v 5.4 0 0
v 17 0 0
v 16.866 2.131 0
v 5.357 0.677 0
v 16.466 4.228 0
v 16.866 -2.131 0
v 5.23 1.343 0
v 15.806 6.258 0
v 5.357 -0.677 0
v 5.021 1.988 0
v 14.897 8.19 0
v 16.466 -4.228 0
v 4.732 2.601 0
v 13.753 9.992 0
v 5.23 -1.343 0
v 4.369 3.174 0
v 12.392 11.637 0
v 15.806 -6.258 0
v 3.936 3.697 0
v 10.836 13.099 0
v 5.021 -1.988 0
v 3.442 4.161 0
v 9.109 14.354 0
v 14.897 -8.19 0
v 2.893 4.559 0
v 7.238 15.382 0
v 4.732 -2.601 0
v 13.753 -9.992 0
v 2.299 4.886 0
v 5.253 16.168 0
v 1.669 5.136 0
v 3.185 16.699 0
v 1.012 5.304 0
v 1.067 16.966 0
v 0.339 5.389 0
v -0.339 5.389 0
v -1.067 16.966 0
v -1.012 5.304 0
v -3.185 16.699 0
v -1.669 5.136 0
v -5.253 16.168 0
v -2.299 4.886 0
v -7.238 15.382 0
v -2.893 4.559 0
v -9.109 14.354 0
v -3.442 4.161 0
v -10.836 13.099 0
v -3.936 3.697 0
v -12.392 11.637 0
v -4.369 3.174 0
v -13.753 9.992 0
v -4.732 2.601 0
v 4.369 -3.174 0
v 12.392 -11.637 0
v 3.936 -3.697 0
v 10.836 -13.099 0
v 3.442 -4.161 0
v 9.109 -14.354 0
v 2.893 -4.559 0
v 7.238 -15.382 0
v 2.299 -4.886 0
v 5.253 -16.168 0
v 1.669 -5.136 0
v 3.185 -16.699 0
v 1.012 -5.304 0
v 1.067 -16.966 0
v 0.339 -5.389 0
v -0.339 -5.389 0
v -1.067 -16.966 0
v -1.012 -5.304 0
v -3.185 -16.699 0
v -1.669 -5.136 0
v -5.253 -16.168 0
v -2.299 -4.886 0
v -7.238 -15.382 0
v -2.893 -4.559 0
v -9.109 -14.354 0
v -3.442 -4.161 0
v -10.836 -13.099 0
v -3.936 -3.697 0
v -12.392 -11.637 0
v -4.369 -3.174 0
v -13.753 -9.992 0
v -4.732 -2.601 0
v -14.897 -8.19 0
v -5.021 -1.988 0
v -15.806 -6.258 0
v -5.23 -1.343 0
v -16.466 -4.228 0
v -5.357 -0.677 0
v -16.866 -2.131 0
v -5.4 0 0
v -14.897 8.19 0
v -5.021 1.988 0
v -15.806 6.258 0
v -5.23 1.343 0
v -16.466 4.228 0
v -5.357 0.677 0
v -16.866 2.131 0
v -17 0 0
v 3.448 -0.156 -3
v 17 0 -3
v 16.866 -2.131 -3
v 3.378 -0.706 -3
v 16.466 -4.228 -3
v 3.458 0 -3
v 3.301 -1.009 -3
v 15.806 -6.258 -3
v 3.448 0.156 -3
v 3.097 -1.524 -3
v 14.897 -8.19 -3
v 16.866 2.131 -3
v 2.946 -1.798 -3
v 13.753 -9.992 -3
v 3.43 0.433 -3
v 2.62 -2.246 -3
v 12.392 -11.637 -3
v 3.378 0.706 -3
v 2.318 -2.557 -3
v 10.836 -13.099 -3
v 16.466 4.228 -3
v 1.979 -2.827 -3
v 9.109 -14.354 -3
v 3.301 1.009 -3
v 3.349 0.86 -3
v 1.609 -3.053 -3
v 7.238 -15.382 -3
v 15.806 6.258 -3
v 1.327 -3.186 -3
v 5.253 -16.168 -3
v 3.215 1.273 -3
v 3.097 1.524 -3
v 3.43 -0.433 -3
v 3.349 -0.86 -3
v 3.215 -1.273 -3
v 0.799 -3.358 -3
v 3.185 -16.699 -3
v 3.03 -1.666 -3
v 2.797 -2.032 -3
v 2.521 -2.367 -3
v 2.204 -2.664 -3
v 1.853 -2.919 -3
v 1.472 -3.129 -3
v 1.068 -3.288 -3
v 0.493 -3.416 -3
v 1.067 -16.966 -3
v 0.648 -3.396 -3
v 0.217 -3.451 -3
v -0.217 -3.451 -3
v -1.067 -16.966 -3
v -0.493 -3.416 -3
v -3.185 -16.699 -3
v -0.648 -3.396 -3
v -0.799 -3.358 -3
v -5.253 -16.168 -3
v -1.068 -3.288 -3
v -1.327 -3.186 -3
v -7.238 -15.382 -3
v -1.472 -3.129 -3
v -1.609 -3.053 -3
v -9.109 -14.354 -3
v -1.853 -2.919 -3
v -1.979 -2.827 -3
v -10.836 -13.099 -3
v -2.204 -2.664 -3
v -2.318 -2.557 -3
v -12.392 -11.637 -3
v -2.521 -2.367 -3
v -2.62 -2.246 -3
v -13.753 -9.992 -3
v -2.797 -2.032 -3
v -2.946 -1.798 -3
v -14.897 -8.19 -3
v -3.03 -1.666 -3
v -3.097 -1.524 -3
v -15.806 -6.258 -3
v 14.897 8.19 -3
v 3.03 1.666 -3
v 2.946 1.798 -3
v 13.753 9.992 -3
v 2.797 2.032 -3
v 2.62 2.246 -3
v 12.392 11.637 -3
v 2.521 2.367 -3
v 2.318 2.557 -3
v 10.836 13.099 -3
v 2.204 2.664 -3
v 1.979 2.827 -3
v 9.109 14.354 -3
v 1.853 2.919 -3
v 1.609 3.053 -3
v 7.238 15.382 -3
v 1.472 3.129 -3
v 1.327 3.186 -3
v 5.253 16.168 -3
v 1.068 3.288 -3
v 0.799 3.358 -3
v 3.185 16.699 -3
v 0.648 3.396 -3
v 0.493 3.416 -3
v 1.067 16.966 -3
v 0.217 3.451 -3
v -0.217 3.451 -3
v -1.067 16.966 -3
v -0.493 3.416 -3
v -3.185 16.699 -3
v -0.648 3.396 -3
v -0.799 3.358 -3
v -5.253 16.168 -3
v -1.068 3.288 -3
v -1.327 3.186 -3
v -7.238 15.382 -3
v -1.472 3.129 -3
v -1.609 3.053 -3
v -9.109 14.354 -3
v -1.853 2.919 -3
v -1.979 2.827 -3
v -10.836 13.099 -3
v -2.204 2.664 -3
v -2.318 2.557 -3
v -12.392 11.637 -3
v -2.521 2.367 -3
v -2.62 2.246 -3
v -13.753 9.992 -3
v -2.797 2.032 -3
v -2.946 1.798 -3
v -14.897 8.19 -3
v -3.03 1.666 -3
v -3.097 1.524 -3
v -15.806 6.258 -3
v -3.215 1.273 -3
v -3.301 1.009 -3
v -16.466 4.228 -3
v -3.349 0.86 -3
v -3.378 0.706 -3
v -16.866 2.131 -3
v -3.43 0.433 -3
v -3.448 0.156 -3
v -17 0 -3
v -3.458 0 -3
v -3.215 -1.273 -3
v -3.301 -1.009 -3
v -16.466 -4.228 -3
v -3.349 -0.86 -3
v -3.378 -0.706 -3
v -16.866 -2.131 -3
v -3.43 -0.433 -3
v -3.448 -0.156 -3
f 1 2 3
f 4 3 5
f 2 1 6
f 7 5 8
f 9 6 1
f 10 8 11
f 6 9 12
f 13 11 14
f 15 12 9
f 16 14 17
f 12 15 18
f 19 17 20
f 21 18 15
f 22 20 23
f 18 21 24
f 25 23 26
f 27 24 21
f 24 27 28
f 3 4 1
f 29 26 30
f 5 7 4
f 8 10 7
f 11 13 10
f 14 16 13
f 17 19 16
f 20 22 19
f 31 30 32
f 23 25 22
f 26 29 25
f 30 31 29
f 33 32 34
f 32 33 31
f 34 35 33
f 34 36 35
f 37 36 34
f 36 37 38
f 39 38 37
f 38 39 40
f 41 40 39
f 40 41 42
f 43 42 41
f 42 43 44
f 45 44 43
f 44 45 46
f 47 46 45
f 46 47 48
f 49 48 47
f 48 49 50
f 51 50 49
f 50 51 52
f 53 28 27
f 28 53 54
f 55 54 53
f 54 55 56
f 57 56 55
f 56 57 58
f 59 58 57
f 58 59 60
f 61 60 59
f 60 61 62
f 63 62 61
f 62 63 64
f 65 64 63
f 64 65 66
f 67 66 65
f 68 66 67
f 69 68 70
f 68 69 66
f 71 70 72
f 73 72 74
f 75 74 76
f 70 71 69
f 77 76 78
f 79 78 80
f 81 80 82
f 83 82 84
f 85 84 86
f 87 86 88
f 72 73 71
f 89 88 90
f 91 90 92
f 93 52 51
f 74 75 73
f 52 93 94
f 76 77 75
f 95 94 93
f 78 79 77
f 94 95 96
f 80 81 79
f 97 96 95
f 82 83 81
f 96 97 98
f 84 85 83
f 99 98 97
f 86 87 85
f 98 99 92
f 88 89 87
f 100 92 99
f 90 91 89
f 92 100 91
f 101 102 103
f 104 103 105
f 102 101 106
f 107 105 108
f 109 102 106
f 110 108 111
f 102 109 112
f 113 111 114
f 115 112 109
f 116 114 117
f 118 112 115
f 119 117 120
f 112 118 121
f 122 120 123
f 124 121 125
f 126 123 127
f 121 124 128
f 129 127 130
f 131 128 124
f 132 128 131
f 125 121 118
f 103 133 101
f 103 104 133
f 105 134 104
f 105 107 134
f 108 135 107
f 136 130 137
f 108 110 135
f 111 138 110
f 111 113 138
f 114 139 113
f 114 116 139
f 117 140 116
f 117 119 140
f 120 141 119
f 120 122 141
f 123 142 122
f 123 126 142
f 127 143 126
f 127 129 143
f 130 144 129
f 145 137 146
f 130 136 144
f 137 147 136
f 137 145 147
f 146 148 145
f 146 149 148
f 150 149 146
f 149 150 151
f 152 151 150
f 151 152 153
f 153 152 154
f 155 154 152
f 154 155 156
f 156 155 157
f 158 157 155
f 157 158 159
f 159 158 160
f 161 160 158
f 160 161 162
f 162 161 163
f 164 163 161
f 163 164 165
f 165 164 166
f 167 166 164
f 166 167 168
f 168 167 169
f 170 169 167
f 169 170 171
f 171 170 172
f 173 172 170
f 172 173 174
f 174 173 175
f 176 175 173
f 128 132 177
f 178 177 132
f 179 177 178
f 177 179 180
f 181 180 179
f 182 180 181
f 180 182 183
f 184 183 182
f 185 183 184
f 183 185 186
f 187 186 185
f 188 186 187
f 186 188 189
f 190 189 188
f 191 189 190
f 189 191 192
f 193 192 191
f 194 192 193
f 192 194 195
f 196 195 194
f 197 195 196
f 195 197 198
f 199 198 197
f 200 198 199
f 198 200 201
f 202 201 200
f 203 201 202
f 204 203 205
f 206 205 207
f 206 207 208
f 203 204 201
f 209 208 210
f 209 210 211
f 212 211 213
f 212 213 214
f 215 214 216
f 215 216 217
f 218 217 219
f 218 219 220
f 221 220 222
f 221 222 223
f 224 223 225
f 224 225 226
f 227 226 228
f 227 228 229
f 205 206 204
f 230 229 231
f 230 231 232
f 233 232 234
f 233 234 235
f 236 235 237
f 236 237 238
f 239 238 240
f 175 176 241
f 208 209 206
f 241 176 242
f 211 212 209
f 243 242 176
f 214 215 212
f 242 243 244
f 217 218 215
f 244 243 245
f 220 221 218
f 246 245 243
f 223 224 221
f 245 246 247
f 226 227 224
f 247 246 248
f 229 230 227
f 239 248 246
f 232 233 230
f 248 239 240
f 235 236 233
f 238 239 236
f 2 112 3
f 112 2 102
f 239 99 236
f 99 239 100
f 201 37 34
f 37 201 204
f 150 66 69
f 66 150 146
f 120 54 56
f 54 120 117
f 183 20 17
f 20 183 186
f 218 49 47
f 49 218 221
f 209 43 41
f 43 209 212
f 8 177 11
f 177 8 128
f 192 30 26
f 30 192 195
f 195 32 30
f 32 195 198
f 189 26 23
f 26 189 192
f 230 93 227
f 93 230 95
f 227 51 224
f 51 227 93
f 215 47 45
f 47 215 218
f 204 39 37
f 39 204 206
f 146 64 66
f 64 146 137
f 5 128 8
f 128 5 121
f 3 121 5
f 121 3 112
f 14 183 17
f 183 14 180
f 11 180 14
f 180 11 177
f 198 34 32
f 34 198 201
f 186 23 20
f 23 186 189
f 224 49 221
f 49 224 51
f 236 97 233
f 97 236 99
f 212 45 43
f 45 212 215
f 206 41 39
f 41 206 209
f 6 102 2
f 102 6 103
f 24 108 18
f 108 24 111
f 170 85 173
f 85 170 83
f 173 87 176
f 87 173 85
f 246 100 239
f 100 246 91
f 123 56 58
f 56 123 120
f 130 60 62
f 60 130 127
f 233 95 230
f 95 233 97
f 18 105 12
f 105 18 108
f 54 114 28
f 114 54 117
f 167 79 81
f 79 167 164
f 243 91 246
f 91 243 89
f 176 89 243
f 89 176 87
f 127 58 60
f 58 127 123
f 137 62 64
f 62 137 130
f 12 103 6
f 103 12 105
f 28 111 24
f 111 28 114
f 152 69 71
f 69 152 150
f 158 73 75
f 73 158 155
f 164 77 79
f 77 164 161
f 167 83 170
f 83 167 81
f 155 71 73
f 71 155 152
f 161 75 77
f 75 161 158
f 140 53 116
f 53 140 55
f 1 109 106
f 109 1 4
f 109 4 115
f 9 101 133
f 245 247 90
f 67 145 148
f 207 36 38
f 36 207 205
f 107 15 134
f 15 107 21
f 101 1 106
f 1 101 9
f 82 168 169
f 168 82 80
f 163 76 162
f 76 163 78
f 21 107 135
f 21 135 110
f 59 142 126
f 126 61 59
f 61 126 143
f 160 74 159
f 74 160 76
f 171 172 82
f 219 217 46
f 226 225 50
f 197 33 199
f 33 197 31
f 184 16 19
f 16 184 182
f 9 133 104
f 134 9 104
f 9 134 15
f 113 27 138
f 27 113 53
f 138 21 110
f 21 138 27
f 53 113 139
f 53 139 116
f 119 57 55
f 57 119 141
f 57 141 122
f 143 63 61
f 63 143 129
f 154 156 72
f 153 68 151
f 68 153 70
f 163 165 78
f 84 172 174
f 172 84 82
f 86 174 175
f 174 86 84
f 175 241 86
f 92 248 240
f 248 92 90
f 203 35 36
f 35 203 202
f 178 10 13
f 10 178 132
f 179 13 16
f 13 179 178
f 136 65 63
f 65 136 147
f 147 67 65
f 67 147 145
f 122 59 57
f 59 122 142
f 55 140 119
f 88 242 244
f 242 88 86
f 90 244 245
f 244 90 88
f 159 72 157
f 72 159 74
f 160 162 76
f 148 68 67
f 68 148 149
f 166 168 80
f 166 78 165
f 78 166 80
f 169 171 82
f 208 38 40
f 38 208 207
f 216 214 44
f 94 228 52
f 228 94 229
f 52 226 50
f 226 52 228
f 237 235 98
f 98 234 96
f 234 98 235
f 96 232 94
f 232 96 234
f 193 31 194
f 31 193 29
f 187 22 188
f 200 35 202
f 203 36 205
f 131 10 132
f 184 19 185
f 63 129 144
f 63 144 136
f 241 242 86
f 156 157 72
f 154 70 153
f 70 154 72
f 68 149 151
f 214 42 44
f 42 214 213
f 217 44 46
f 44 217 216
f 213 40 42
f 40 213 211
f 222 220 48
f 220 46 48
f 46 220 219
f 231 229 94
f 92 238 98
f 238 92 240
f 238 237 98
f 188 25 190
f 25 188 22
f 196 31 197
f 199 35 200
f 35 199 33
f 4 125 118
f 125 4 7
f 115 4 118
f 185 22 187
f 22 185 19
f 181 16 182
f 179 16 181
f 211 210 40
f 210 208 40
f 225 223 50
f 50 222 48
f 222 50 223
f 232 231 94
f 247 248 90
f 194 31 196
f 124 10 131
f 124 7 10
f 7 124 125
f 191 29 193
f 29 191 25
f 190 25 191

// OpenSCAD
$fn = 50;


difference() {
	union() {
		translate(v = [0, 0, -3.0000000000]) {
			cylinder(h = 3, r = 7.0000000000);
		}
		translate(v = [0, 0, -3.0000000000]) {
			cylinder(h = 3, r = 17.0000000000);
		}
	}
	union() {
		translate(v = [0, 0, 0]) {
			rotate(a = [0, 0, 0]) {
				difference() {
					union() {
						#translate(v = [0, 0, -3.0000000000]) {
							cylinder(h = 3, r = 2.6000000000);
						}
						#translate(v = [0, 0, -3.9000000000]) {
							cylinder(h = 3.9000000000, r1 = 2.8750000000, r2 = 5.4000000000);
						}
						#translate(v = [0, 0, -3.0000000000]) {
							cylinder(h = 3, r = 2.8750000000);
						}
						#translate(v = [0, 0, -3.0000000000]) {
							cylinder(h = 3, r = 2.6000000000);
						}
					}
					union();
				}
			}
		}
	}
}
